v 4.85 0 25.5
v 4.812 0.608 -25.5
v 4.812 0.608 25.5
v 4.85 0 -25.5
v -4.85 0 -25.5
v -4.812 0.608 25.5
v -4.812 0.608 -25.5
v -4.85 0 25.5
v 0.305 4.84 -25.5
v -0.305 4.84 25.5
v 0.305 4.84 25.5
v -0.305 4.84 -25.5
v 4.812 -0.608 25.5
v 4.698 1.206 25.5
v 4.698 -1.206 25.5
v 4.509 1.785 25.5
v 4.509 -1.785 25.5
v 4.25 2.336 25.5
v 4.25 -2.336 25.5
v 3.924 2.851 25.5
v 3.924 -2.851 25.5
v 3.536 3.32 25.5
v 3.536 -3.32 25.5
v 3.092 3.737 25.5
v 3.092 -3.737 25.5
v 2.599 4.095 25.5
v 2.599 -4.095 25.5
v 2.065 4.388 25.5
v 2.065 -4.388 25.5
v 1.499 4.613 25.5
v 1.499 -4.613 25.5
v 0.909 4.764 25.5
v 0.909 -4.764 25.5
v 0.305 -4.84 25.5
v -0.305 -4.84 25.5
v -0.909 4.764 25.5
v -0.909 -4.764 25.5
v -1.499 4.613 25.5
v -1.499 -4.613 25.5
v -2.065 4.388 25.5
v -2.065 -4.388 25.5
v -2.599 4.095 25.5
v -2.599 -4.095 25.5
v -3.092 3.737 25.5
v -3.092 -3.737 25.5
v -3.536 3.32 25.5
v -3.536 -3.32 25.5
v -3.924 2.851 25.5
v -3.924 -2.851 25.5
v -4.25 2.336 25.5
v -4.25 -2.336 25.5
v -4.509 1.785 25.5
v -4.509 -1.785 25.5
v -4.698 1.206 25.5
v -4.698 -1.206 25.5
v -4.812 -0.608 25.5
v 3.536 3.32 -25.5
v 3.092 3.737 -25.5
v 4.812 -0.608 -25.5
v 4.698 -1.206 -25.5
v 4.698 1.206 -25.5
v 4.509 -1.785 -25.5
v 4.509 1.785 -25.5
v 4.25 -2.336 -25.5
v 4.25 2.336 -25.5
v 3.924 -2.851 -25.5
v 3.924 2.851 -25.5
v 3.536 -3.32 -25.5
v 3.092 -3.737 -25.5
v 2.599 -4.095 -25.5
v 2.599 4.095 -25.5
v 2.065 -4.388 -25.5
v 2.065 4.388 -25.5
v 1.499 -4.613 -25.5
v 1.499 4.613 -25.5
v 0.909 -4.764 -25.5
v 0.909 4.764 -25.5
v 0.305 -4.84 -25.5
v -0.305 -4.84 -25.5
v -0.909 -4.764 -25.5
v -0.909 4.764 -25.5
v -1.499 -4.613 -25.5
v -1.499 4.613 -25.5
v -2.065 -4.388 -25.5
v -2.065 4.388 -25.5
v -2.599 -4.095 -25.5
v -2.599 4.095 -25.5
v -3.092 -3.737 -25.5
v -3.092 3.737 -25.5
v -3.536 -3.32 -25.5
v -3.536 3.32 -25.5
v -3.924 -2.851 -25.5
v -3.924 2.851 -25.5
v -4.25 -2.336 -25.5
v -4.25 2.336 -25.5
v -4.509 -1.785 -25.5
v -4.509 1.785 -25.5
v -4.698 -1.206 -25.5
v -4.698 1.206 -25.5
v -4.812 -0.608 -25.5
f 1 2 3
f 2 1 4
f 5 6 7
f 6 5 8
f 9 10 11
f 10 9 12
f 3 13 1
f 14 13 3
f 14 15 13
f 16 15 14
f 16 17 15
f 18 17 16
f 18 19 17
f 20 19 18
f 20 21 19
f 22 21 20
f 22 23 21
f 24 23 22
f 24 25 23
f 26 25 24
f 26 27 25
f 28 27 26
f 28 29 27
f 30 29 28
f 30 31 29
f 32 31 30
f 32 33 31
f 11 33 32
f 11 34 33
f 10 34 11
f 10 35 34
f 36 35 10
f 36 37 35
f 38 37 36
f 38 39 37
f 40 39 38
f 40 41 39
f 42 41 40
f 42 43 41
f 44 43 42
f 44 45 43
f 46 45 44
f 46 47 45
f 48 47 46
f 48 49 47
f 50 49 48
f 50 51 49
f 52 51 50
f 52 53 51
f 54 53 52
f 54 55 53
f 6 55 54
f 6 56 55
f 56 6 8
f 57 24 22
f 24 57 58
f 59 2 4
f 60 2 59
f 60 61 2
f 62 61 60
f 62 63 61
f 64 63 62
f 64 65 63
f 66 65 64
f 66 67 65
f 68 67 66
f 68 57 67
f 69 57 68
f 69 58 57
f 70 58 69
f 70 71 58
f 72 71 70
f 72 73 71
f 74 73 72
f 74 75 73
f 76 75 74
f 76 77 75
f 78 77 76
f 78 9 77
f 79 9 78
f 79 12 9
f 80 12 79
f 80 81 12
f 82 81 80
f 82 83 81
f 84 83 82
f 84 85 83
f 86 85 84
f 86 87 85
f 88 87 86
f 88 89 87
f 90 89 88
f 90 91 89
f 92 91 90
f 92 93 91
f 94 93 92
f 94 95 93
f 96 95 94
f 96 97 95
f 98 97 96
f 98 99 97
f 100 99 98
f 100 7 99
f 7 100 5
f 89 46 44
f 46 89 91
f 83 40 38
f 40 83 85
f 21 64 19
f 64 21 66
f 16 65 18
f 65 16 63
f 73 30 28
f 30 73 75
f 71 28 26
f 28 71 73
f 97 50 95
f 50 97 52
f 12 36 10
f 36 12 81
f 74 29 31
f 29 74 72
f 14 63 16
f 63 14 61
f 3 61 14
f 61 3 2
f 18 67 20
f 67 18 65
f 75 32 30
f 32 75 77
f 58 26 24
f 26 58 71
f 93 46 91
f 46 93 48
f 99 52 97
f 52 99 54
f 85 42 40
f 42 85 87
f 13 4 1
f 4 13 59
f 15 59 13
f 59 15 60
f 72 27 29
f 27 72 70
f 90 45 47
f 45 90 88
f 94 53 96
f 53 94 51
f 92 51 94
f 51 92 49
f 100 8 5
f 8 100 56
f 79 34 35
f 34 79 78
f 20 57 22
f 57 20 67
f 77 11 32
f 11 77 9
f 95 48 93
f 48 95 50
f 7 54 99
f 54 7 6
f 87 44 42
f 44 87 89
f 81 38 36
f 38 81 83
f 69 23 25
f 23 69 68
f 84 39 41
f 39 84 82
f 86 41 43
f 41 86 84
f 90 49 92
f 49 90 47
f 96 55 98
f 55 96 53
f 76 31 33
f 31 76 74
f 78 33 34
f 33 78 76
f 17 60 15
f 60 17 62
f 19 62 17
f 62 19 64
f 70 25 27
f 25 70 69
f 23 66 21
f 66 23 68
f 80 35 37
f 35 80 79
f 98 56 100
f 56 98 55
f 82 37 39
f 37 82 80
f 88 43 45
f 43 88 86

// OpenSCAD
$fn = 50;


difference() {
	union() {
		translate(v = [0, 0, -25.5000000000]) {
			cylinder(h = 51, r = 4.8500000000);
		}
	}
	union() {
		translate(v = [0, 0, -100.0000000000]) {
			cylinder(h = 200, r = 0);
		}
	}
}
